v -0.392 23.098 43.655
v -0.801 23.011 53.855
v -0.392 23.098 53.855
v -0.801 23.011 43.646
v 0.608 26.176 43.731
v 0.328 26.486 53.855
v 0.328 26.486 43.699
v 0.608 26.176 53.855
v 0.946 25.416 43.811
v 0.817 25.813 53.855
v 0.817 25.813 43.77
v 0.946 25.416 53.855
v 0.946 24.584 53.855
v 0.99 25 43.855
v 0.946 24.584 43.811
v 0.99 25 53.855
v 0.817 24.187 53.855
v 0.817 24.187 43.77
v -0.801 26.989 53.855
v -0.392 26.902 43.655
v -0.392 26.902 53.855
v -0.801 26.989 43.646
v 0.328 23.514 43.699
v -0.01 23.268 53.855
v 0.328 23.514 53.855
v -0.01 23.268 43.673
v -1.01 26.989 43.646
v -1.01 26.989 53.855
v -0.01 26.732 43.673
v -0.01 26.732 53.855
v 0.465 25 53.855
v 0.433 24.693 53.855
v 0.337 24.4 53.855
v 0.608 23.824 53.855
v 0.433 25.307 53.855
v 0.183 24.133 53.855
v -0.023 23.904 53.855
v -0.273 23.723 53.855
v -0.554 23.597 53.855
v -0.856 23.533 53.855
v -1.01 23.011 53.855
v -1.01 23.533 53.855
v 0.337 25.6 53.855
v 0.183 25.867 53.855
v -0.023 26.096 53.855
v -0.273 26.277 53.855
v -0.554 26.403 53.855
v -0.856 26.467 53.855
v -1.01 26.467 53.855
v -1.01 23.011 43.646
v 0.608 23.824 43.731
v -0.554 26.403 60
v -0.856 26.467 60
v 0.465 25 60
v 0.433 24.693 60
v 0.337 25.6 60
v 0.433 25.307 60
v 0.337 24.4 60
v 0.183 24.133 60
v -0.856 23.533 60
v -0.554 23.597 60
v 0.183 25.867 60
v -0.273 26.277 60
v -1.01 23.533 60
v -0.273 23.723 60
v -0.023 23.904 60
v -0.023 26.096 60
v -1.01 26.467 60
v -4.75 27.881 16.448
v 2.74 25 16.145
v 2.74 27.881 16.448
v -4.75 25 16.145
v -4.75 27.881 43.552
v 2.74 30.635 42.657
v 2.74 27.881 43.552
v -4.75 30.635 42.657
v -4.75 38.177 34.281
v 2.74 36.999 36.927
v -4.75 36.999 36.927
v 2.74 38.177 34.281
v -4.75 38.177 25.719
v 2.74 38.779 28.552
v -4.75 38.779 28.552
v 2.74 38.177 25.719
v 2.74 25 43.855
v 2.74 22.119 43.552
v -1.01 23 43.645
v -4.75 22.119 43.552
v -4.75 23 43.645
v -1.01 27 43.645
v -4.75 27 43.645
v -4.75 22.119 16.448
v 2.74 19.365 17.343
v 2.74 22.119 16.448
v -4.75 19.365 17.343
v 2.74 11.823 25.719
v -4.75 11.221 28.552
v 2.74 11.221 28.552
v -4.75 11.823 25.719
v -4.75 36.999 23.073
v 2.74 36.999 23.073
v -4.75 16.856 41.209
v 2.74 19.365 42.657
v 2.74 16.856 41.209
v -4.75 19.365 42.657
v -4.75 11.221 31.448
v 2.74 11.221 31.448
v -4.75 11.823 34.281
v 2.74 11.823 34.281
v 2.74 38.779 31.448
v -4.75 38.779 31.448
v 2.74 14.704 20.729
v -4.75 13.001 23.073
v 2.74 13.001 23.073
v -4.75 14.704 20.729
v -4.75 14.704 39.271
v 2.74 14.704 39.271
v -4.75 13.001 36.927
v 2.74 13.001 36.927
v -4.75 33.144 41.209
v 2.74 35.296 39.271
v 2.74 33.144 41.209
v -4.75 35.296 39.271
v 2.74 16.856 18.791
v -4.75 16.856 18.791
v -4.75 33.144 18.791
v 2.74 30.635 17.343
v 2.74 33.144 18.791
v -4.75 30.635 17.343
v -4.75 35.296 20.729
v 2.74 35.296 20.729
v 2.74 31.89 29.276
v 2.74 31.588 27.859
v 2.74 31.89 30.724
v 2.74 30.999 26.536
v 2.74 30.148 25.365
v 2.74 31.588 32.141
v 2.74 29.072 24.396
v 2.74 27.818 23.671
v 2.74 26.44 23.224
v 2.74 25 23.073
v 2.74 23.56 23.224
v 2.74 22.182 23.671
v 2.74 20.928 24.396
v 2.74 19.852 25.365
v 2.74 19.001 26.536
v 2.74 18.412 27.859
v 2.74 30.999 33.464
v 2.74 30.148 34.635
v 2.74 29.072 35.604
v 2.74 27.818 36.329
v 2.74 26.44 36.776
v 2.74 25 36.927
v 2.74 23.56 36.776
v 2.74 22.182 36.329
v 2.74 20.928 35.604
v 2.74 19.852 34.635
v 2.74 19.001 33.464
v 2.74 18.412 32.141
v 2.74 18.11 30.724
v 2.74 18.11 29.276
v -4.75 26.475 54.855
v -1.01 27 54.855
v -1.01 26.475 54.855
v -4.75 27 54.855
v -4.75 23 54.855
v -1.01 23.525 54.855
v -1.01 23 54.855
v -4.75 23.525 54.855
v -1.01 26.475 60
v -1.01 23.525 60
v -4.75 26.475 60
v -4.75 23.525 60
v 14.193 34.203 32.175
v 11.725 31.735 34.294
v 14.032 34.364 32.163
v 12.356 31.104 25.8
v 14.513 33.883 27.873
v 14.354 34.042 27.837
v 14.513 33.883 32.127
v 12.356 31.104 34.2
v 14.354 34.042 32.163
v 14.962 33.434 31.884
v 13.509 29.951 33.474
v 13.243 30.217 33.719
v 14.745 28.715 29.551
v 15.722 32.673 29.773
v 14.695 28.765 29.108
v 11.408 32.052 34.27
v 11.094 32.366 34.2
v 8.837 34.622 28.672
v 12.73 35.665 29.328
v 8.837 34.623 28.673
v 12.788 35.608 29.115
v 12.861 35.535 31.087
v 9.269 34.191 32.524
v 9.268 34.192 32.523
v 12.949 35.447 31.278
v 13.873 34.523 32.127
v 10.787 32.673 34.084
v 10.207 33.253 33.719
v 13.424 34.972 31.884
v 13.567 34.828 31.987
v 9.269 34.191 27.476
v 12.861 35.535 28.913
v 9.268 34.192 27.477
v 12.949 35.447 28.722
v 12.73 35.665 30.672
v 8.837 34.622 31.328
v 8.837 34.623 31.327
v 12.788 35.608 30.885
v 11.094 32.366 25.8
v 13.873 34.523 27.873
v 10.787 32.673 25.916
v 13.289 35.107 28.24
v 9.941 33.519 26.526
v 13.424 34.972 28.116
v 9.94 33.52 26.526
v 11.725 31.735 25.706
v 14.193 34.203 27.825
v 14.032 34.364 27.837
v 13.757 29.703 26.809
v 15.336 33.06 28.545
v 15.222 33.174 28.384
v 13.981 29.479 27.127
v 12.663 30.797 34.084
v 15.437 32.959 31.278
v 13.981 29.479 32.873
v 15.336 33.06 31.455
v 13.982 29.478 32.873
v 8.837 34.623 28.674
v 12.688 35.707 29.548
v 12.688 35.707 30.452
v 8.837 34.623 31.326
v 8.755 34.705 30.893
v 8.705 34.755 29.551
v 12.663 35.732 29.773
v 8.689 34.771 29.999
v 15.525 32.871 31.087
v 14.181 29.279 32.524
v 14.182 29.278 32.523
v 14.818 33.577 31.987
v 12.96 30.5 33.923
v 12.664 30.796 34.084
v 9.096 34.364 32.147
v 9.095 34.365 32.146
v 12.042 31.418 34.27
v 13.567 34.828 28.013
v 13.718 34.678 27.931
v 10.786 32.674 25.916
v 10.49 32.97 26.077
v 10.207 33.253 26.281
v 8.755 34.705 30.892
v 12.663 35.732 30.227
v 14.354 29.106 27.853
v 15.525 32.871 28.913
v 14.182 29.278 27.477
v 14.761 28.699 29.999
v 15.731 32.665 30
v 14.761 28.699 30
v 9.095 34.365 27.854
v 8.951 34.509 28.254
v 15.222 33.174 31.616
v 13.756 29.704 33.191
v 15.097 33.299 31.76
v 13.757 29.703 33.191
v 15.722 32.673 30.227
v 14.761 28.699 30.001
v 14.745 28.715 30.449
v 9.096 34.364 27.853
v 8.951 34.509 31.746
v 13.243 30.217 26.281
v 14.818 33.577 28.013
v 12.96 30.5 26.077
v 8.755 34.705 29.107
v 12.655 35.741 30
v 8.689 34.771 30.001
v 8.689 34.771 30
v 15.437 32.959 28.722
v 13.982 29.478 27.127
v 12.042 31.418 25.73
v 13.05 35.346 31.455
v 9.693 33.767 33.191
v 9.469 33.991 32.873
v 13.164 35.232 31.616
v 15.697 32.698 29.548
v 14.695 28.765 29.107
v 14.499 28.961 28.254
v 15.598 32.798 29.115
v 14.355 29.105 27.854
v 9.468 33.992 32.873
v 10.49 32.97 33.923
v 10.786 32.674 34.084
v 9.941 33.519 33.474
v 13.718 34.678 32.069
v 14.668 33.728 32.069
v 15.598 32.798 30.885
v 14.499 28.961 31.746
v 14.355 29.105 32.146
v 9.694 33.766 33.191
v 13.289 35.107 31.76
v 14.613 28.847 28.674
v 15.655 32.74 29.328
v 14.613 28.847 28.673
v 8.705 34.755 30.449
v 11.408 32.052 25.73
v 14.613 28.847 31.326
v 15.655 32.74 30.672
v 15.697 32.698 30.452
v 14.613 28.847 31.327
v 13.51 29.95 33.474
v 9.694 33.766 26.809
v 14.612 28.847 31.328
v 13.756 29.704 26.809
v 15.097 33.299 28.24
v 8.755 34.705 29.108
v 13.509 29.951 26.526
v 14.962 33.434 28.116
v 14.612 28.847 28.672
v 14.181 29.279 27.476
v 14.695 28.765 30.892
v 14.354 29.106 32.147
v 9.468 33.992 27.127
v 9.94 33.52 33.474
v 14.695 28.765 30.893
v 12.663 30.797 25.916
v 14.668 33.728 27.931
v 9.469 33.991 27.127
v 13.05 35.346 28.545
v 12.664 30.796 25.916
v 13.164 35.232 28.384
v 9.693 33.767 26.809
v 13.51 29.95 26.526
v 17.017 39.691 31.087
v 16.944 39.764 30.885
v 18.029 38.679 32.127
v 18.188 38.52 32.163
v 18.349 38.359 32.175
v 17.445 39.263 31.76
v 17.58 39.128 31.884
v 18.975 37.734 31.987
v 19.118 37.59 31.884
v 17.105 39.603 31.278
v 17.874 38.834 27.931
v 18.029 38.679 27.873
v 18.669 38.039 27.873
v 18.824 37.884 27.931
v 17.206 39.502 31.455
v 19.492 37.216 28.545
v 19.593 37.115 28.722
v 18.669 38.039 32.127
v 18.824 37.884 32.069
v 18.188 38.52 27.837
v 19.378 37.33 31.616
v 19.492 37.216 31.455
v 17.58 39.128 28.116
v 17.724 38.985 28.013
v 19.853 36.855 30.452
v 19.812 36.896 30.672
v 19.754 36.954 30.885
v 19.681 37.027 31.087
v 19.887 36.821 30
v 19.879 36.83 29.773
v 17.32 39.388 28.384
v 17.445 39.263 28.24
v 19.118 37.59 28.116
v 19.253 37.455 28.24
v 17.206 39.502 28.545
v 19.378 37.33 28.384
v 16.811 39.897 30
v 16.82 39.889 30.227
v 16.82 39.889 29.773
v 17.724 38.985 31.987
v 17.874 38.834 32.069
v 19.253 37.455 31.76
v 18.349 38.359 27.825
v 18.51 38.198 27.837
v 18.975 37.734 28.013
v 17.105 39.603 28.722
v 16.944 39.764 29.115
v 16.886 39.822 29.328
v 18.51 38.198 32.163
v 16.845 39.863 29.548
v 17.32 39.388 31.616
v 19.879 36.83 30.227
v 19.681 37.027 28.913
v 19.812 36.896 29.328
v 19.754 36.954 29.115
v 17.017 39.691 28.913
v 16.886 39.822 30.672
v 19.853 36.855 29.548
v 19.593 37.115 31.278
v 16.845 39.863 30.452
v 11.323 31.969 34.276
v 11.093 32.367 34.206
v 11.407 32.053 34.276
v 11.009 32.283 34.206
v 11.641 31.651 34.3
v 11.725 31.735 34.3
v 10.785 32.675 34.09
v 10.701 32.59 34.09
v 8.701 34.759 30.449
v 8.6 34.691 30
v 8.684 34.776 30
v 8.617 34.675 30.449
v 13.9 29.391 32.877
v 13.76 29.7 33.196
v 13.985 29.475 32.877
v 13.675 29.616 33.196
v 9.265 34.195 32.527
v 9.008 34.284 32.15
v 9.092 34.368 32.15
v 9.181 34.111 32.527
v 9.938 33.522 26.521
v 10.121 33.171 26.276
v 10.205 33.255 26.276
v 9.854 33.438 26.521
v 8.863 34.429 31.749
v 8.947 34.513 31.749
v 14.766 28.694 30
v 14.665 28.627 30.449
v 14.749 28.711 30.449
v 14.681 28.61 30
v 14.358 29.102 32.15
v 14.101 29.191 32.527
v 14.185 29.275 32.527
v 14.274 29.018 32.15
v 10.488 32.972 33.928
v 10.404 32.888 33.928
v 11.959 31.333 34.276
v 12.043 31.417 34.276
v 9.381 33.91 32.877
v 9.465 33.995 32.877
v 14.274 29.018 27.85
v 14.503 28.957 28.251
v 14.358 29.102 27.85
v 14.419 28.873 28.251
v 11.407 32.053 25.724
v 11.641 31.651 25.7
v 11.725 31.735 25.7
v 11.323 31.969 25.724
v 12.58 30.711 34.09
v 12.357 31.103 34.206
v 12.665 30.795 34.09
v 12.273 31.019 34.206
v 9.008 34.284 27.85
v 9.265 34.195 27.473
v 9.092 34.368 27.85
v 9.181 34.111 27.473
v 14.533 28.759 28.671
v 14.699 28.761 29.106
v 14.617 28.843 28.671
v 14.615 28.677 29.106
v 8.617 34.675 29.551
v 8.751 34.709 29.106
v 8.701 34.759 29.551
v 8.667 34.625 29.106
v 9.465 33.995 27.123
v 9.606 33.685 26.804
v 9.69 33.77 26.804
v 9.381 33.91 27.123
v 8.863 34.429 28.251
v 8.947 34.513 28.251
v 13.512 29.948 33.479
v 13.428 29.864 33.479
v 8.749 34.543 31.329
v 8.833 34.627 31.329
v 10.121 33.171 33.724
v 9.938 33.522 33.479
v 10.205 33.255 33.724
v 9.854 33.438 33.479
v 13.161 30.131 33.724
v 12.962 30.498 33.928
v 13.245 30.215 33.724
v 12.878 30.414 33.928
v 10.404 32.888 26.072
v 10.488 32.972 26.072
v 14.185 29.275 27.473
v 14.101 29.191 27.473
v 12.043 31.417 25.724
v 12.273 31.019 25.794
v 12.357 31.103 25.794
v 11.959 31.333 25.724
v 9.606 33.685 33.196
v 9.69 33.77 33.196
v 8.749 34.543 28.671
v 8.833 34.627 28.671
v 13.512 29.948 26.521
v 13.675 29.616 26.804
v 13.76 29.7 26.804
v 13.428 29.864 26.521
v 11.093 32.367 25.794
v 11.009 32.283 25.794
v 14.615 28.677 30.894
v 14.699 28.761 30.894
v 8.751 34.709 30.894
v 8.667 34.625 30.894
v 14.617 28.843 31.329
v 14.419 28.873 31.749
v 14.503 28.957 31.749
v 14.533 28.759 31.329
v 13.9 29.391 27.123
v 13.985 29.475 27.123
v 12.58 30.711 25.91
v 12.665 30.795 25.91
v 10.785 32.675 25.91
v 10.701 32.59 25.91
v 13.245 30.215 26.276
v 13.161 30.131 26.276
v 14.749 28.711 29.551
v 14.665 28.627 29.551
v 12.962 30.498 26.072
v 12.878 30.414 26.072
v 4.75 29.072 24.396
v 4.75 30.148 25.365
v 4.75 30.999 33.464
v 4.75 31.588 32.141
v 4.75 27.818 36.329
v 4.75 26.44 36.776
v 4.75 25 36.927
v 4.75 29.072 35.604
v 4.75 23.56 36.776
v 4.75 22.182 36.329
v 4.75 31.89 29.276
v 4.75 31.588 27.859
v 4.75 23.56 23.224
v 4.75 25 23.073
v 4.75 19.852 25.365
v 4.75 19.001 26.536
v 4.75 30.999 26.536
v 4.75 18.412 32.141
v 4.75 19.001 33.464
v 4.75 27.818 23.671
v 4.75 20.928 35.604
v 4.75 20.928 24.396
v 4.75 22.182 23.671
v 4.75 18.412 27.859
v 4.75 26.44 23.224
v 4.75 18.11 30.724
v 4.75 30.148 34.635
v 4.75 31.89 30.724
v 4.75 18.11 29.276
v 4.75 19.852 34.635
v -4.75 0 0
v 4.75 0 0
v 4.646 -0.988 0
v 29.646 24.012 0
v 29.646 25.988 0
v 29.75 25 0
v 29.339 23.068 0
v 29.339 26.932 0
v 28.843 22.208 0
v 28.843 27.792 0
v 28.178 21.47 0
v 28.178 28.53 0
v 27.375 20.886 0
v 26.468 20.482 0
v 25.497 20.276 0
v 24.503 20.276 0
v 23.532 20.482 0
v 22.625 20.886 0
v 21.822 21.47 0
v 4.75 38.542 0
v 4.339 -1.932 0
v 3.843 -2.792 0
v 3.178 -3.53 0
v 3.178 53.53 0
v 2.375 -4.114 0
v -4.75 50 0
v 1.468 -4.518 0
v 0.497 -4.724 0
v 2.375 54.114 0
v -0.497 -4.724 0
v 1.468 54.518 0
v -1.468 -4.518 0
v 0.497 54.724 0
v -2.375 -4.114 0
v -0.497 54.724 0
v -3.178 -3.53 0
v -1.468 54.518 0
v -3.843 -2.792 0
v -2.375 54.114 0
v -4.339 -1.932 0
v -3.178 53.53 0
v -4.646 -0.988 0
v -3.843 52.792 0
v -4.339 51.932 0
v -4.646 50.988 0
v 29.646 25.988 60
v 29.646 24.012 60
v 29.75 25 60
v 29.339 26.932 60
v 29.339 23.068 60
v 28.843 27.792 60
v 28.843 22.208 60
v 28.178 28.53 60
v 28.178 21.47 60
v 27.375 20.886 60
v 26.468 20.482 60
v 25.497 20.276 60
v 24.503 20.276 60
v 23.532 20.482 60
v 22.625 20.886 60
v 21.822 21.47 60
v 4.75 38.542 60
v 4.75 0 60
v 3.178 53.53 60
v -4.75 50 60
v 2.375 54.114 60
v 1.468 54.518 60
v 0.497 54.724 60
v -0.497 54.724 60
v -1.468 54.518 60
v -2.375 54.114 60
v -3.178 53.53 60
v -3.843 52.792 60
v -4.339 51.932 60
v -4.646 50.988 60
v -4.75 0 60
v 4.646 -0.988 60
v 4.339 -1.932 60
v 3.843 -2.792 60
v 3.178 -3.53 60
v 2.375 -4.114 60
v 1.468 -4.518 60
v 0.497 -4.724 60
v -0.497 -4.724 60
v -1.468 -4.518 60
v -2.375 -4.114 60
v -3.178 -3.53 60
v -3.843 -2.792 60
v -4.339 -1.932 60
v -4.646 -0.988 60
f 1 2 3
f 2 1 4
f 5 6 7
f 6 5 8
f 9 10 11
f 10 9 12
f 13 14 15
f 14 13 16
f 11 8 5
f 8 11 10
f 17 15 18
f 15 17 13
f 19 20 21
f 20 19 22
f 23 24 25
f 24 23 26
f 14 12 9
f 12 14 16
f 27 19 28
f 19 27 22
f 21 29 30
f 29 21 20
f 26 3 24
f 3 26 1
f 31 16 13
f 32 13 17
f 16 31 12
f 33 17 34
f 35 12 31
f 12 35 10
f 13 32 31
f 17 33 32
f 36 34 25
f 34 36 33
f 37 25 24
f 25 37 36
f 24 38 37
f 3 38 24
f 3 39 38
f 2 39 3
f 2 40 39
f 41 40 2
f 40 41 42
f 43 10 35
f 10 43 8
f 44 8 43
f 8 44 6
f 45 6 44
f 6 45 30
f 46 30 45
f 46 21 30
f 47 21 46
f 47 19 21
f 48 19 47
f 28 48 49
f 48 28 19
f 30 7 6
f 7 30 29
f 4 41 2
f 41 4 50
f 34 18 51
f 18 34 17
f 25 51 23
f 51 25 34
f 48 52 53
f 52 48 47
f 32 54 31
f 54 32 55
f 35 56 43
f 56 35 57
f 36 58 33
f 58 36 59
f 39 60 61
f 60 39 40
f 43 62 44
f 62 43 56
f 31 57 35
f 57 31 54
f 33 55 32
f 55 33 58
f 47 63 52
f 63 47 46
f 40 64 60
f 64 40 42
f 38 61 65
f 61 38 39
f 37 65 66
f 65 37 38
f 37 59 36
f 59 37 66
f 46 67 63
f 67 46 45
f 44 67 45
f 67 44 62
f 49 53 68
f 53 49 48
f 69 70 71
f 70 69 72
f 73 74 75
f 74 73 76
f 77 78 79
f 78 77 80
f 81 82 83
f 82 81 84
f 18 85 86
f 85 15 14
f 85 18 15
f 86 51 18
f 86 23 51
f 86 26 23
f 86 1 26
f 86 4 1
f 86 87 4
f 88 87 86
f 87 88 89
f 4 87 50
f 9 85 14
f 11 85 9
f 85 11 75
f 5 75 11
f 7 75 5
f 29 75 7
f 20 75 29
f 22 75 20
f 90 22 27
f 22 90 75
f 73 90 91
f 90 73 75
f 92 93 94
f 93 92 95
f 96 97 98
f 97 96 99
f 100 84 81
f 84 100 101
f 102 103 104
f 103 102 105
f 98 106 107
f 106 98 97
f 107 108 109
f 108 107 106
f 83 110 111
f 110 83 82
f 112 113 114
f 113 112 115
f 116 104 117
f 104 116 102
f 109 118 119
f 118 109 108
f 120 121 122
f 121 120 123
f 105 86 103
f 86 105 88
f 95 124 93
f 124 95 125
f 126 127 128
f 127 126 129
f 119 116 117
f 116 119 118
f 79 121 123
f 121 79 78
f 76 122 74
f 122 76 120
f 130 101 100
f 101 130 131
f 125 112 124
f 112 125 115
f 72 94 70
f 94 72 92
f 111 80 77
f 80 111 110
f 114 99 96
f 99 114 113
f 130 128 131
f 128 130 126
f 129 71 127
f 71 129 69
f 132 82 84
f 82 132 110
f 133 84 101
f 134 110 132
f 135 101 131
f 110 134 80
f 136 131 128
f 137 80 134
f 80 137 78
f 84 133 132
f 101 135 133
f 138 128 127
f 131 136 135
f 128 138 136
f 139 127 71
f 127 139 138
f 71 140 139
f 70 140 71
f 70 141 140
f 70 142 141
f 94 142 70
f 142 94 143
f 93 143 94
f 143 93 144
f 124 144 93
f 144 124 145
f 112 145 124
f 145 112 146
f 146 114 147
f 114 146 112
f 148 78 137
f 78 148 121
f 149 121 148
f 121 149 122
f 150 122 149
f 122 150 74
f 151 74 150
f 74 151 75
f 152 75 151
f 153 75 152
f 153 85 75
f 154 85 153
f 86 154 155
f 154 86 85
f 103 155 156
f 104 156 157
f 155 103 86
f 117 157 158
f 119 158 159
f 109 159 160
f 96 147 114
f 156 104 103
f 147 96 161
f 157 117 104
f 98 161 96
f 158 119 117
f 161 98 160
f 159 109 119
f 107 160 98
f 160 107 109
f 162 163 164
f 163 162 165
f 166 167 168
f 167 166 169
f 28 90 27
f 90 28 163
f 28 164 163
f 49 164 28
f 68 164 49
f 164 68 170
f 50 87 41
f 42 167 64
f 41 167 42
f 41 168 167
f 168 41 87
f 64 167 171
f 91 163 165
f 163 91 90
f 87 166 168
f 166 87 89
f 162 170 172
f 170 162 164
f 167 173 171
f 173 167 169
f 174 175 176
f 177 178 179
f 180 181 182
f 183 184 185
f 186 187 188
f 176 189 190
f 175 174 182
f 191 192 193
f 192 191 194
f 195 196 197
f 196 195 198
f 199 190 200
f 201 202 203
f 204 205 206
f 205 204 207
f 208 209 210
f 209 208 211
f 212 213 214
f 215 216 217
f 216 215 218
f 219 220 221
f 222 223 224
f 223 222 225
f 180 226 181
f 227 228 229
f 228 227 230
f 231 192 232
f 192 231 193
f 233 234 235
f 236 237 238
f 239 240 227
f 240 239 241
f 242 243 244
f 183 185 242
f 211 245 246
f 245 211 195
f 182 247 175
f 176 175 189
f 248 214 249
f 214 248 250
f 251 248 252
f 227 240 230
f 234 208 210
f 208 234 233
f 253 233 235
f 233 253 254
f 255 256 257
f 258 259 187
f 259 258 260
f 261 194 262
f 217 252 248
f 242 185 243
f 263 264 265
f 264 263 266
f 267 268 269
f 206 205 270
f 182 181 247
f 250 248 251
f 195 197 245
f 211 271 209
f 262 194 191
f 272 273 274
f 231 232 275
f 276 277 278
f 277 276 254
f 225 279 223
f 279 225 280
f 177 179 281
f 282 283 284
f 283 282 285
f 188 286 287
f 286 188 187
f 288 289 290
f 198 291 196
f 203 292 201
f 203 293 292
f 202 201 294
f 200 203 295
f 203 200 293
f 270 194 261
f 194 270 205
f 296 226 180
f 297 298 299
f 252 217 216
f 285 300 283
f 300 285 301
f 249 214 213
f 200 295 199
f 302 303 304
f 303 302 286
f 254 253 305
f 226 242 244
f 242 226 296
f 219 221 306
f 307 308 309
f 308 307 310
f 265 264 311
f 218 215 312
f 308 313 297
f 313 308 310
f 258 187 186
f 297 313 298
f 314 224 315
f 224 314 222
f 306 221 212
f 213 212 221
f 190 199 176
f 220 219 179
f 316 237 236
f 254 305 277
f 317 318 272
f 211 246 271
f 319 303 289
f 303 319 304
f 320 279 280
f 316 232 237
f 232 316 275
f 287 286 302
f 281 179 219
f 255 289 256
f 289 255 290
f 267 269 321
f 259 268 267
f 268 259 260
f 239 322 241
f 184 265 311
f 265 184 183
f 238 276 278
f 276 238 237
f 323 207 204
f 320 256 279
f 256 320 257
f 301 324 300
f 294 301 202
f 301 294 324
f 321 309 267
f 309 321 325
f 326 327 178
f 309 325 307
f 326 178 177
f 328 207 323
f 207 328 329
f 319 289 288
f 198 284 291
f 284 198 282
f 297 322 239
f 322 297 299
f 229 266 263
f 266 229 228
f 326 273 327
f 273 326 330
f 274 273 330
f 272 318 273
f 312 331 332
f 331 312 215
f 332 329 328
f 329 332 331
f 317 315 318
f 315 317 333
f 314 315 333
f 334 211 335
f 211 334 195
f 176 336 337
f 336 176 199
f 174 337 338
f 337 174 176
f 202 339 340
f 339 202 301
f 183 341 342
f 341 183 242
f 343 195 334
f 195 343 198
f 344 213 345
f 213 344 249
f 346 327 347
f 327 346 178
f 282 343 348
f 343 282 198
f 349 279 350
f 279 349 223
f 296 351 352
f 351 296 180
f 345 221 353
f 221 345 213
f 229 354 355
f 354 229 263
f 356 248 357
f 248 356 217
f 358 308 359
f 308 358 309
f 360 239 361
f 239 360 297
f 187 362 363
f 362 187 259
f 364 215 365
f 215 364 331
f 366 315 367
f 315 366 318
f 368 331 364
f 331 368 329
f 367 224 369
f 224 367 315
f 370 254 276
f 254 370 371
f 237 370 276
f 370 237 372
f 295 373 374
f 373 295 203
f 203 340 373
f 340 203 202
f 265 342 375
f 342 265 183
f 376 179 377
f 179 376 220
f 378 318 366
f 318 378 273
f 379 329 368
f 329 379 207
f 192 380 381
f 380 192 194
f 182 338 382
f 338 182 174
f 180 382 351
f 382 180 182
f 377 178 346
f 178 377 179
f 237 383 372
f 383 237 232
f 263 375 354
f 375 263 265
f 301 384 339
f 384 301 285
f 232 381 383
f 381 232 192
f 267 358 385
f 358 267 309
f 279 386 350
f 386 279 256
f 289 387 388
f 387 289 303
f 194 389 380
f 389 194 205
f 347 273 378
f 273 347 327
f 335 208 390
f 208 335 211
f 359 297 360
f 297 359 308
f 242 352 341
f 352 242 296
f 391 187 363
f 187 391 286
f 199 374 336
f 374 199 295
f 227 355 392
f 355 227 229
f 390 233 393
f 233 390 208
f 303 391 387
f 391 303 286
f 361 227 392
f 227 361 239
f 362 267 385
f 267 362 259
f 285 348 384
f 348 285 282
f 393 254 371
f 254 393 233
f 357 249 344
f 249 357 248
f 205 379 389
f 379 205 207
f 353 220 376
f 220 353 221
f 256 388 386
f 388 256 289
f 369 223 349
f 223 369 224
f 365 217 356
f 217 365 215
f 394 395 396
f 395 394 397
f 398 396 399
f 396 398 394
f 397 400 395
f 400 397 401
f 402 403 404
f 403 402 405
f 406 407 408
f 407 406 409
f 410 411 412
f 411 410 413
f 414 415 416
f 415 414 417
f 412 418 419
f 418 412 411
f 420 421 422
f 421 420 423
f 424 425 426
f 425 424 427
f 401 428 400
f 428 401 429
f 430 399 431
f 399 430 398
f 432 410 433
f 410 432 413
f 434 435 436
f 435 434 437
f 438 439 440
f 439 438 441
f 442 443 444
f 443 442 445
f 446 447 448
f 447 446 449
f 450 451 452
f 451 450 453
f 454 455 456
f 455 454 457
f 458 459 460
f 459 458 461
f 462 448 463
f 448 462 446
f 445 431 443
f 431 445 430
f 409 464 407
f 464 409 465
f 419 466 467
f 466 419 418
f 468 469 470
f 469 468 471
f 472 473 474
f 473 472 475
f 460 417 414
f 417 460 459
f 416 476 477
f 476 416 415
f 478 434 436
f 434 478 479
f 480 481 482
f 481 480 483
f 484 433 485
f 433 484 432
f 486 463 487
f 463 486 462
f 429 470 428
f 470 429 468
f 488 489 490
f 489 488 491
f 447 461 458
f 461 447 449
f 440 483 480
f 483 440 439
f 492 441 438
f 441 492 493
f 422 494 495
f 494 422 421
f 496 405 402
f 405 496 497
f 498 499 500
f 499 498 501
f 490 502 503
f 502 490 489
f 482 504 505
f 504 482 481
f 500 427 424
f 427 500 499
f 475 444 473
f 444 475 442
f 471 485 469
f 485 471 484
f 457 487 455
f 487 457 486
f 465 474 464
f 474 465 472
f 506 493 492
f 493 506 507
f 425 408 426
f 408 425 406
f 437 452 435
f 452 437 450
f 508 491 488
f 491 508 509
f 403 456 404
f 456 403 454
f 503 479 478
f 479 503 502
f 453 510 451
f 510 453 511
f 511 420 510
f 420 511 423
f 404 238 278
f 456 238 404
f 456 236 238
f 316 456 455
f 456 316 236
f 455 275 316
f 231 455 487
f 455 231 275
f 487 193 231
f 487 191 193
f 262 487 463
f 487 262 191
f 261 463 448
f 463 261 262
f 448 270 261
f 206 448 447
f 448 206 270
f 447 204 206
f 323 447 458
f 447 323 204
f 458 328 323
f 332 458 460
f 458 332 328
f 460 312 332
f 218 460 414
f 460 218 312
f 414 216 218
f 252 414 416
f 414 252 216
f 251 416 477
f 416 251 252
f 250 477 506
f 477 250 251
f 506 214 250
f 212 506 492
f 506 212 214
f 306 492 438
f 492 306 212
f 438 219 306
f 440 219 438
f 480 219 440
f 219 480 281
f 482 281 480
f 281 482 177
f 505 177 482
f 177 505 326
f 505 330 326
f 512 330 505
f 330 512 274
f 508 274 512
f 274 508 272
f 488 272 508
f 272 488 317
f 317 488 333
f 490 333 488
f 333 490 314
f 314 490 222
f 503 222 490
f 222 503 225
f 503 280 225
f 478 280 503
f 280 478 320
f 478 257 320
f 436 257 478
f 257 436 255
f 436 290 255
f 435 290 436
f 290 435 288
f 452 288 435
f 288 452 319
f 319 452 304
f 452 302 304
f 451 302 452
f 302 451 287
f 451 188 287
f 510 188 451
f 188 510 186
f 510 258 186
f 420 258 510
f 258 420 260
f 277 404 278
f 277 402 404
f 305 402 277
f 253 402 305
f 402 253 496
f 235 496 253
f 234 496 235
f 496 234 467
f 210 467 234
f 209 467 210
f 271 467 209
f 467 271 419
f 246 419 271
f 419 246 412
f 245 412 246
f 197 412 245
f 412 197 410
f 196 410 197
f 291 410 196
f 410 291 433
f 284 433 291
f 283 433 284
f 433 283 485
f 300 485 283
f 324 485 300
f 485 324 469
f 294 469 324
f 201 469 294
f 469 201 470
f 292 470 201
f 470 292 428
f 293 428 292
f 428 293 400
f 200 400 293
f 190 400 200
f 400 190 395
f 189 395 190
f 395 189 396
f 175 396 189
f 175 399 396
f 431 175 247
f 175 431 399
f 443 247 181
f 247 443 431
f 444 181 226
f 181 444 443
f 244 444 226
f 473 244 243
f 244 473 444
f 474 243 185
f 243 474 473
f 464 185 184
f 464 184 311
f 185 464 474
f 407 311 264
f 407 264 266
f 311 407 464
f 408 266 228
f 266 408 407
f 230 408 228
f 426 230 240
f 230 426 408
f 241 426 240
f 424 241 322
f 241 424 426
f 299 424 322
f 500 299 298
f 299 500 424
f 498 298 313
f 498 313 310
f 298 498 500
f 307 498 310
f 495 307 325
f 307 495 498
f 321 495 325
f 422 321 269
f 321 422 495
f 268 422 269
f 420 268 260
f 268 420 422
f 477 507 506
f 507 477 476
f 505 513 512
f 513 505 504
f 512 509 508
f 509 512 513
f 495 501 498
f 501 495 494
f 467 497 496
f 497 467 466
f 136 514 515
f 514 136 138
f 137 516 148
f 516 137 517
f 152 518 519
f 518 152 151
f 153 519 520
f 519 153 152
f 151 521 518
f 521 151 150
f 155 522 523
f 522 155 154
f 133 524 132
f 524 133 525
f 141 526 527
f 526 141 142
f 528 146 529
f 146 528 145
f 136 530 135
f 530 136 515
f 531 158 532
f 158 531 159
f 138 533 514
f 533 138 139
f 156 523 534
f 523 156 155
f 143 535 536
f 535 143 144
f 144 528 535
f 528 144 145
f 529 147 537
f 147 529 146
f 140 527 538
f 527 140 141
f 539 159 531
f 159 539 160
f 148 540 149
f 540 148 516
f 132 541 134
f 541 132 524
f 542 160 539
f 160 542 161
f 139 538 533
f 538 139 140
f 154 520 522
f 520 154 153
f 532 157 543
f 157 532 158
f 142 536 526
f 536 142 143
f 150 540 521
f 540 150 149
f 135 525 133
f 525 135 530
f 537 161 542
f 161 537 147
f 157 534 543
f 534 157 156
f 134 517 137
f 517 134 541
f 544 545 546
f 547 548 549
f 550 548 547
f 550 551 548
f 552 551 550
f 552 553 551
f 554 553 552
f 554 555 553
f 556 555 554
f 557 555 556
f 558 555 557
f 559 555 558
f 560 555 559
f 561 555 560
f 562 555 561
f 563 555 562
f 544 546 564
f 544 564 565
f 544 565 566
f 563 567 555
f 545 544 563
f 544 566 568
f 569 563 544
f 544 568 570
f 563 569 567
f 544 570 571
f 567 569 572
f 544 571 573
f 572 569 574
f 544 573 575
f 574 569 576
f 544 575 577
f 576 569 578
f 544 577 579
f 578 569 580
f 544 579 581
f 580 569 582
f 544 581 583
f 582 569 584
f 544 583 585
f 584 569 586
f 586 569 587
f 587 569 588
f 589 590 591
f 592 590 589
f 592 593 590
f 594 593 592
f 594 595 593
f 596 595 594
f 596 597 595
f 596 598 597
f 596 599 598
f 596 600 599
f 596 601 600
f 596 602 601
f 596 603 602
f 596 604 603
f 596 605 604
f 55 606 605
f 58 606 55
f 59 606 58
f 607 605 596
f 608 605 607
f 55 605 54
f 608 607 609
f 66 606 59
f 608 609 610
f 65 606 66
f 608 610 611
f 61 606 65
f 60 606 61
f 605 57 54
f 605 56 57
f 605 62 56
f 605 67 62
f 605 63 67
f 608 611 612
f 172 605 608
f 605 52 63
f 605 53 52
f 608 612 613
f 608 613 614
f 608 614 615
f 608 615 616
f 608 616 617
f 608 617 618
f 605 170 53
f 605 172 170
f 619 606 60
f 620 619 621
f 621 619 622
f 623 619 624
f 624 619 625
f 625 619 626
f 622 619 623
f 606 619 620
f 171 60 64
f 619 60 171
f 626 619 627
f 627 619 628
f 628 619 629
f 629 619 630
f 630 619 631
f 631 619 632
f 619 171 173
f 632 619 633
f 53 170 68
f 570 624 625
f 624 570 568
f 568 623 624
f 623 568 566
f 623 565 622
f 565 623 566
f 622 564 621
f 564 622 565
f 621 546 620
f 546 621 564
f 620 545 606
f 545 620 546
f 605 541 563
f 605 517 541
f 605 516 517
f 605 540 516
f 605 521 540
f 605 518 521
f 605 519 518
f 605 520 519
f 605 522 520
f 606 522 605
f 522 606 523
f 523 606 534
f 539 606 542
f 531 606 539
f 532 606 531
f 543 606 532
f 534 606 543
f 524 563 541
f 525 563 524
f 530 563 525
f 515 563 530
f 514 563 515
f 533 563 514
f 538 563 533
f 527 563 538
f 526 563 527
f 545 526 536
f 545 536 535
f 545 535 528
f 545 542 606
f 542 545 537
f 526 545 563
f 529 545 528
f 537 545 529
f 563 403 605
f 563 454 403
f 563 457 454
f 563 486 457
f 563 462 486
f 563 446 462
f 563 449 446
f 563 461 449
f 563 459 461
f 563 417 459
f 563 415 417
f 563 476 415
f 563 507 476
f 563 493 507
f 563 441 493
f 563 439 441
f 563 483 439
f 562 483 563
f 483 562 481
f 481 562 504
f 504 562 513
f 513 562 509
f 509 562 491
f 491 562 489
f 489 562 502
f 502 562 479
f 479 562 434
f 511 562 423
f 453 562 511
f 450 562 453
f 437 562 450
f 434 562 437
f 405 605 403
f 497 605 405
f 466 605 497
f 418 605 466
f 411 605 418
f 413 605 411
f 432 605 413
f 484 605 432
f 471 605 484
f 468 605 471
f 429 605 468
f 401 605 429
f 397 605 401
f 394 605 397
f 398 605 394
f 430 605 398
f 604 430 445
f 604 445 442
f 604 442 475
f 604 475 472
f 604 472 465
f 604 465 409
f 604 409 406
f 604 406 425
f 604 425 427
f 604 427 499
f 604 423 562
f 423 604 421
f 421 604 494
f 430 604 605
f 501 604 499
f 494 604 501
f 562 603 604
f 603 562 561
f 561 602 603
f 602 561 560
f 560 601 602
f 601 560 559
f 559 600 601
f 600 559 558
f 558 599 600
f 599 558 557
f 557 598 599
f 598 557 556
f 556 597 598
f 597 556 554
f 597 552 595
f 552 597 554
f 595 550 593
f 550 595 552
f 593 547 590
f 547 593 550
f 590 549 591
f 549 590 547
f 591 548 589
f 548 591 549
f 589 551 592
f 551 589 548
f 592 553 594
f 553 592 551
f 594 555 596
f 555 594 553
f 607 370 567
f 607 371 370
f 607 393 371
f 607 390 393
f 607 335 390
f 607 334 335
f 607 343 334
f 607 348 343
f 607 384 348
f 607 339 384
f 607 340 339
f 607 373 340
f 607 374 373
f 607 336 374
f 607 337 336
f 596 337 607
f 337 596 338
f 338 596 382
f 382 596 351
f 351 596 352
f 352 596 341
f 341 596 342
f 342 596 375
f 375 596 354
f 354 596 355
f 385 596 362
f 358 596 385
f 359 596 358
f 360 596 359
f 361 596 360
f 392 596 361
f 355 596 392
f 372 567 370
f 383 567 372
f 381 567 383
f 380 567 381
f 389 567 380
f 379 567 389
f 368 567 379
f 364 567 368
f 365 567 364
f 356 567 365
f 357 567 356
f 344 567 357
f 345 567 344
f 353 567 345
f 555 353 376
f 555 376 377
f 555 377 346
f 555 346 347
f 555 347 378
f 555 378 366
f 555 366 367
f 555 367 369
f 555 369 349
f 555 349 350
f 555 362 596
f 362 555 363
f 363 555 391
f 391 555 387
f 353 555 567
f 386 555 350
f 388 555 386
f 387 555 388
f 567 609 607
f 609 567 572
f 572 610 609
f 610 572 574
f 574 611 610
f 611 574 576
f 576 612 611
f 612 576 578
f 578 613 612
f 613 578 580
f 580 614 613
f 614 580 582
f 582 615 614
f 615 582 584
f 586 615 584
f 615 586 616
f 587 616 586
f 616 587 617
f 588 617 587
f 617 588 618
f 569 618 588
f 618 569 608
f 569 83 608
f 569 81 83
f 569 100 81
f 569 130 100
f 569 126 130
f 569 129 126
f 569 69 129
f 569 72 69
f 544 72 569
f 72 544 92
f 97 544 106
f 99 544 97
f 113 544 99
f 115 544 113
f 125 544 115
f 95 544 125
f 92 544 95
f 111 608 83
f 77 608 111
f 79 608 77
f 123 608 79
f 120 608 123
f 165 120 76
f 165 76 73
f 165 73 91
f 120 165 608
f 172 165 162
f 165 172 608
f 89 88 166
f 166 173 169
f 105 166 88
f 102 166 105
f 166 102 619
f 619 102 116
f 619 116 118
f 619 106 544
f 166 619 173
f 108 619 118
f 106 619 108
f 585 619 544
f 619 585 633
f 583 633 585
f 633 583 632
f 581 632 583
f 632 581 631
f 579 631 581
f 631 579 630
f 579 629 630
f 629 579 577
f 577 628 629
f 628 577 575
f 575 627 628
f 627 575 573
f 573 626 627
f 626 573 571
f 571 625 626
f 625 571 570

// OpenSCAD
// file: support/countersink.scad
module countersink(hd, hl, sd, sl, d=0, t=0.3, $fn=60) {
  // hd -- Head Diameter
  // hl -- Head Length
  // sd -- Shaft Diameter
  // sl -- Shaft Length
  // d -- Countersink Depth
  // t -- Tolerance

  translate([0, 0, -hl])
  cylinder(hl, sd/2+t, hd/2+t);

  translate([0, 0, -sl - hl + 0.01])
  cylinder(r=sd/2+t, h=sl+t);

  if (d > 0) {
    translate([0, 0, -0.01])
    cylinder(r=hd/2+t, h=d);
  }
}

// Black 1 1/4
module drywall_countersink(hd=8, hl=3.5, sd=3.75, sl=31.5, d=0, t=0.3, $fn=60) {
  countersink(hd, hl, sd, sl, d, t, $fn);
}

// Gold 2 1/2
module gold_countersink(hd=8.5, hl=4.75, sd=4.25, sl=64.75, d=0, t=0.3, $fn=60) {
  countersink(hd, hl, sd, sl, d, t, $fn);
}

// countersink(8, 3.5, 3.75, 31.5);

// Black 1 1/4 - 8,   3.5,  3.75,  31.5
// Black 1 5/8 - 8,   3.5,  3.75,  40.5
// Grey  2 1/2 - 9,   4,    5,     62.75
// Gold  2 1/2 - 8.5, 4.75, 4.25,  64.75
// Black 3     - 8,   3.5,  4.4,   75.5
// Grey  4     - 8.7, 3.5,  5,    101.6
// Silver  3/4 - 7.5, 3,    3.8,   18.75
// file: support/linepath.scad
module line(start, end, thickness = 1) {
  hull() {
    translate(start) circle(thickness);
    translate(end) circle(thickness);
  }
}

module path(line_points, thickness = 1) {
  for (i=[0:len(line_points)-1]) {
    if (i > 0) {
      line(line_points[i-1], line_points[i], thickness);
    }
  }
}

// line([40, 10, 0], [70, 70, 0])
// path([40, 10, 0], [70, 70, 0], [100, 100, 0])
// path can take multiple arguments- including the return of PolyRound (Only supports 2d lines)
// file: support/vars.scad
// Used to merge objects on the same coord
rerr = 0.01;
rerr2 = rerr*2;

// Typically recommended to use nozzle size as tolerance to get two pieces to fit together tightly
tolerances = [
  ["perfect",  0.1],
  ["precise",  0.2],
  ["tight",    0.3],
  ["friction", 0.4],
  ["loose",    0.5],
  ["near",     0.6],
];
function tolerance(key) = tolerances[search([key], tolerances)[0]][1];

wall_sizes = [
  ["paper",    1],
  ["flimsy",   2],
  ["weak",     3],
  ["strong",   4],
  ["stronger", 5],
  ["solid",    6],
];
function wall_size(key) = wall_sizes[search([key], wall_sizes)[0]][1];

// Defaults (Can be overridden)
wall = wall_size("flimsy");
tol = tolerance("loose");
// main file
include <support/vars.scad>
include <support/polyround.scad>
include <support/linepath.scad>
include <support/countersink.scad>

// Slightly too small. Need to increase the charger_dia tolerance, mostly due to squish from printing

$fn=30;

case_width = 60;
case_height = 50;

charger_dia = 27.31 + tolerance("friction");
charger_d = 7.5;
conn_wire_leng = 10;
conn_wire_dia = 3.7 + tolerance("tight");
wire_dia = 2.65 + tolerance("tight");

back_wall = wall_size("paper");

module centercube(pos) {
  translate([-pos.x/2, -pos.y/2, 0])
  cube([pos.x, pos.y, pos.z]);
}

module charger() {
  cylinder(r=charger_dia/2, h=charger_d, center=true);

  offset = 1;
  translate([charger_dia/2, 0, 0])
  translate([-offset, 0, 0]) {
    rotate([0, 90, 0])
    cylinder(r=conn_wire_dia/2, h=conn_wire_leng+offset);

    rotate([0, 90, 0])
    cylinder(r=wire_dia/2, h=30);
  }
}

//charger();

difference() {
  linear_extrude(case_width)
  path(polyRound([
    [0, 0, 0],
    [0, case_height, 0],
    [case_height/2, case_height/2, 0],
  ]), charger_d/2 + back_wall); //

  translate([-back_wall-rerr, case_height/2, case_width/2]) {
    rotate([0, -90, 0]) {
      charger();
      translate([charger_dia/2 - 1, 0, 0]) {
        translate([0, -conn_wire_dia/2, 0])
        cube([conn_wire_leng+2, conn_wire_dia, charger_d]);
        translate([0, -wire_dia/2, 0])
        cube([30, wire_dia, charger_d]);
      }
      cylinder(r=charger_dia/4, h=20, center=true);

      translate([0, -6, 0])
      rotate([45, 0, 0])
      translate([0, 0, -18])
      drywall_countersink(d=10);
    }
  }
}
